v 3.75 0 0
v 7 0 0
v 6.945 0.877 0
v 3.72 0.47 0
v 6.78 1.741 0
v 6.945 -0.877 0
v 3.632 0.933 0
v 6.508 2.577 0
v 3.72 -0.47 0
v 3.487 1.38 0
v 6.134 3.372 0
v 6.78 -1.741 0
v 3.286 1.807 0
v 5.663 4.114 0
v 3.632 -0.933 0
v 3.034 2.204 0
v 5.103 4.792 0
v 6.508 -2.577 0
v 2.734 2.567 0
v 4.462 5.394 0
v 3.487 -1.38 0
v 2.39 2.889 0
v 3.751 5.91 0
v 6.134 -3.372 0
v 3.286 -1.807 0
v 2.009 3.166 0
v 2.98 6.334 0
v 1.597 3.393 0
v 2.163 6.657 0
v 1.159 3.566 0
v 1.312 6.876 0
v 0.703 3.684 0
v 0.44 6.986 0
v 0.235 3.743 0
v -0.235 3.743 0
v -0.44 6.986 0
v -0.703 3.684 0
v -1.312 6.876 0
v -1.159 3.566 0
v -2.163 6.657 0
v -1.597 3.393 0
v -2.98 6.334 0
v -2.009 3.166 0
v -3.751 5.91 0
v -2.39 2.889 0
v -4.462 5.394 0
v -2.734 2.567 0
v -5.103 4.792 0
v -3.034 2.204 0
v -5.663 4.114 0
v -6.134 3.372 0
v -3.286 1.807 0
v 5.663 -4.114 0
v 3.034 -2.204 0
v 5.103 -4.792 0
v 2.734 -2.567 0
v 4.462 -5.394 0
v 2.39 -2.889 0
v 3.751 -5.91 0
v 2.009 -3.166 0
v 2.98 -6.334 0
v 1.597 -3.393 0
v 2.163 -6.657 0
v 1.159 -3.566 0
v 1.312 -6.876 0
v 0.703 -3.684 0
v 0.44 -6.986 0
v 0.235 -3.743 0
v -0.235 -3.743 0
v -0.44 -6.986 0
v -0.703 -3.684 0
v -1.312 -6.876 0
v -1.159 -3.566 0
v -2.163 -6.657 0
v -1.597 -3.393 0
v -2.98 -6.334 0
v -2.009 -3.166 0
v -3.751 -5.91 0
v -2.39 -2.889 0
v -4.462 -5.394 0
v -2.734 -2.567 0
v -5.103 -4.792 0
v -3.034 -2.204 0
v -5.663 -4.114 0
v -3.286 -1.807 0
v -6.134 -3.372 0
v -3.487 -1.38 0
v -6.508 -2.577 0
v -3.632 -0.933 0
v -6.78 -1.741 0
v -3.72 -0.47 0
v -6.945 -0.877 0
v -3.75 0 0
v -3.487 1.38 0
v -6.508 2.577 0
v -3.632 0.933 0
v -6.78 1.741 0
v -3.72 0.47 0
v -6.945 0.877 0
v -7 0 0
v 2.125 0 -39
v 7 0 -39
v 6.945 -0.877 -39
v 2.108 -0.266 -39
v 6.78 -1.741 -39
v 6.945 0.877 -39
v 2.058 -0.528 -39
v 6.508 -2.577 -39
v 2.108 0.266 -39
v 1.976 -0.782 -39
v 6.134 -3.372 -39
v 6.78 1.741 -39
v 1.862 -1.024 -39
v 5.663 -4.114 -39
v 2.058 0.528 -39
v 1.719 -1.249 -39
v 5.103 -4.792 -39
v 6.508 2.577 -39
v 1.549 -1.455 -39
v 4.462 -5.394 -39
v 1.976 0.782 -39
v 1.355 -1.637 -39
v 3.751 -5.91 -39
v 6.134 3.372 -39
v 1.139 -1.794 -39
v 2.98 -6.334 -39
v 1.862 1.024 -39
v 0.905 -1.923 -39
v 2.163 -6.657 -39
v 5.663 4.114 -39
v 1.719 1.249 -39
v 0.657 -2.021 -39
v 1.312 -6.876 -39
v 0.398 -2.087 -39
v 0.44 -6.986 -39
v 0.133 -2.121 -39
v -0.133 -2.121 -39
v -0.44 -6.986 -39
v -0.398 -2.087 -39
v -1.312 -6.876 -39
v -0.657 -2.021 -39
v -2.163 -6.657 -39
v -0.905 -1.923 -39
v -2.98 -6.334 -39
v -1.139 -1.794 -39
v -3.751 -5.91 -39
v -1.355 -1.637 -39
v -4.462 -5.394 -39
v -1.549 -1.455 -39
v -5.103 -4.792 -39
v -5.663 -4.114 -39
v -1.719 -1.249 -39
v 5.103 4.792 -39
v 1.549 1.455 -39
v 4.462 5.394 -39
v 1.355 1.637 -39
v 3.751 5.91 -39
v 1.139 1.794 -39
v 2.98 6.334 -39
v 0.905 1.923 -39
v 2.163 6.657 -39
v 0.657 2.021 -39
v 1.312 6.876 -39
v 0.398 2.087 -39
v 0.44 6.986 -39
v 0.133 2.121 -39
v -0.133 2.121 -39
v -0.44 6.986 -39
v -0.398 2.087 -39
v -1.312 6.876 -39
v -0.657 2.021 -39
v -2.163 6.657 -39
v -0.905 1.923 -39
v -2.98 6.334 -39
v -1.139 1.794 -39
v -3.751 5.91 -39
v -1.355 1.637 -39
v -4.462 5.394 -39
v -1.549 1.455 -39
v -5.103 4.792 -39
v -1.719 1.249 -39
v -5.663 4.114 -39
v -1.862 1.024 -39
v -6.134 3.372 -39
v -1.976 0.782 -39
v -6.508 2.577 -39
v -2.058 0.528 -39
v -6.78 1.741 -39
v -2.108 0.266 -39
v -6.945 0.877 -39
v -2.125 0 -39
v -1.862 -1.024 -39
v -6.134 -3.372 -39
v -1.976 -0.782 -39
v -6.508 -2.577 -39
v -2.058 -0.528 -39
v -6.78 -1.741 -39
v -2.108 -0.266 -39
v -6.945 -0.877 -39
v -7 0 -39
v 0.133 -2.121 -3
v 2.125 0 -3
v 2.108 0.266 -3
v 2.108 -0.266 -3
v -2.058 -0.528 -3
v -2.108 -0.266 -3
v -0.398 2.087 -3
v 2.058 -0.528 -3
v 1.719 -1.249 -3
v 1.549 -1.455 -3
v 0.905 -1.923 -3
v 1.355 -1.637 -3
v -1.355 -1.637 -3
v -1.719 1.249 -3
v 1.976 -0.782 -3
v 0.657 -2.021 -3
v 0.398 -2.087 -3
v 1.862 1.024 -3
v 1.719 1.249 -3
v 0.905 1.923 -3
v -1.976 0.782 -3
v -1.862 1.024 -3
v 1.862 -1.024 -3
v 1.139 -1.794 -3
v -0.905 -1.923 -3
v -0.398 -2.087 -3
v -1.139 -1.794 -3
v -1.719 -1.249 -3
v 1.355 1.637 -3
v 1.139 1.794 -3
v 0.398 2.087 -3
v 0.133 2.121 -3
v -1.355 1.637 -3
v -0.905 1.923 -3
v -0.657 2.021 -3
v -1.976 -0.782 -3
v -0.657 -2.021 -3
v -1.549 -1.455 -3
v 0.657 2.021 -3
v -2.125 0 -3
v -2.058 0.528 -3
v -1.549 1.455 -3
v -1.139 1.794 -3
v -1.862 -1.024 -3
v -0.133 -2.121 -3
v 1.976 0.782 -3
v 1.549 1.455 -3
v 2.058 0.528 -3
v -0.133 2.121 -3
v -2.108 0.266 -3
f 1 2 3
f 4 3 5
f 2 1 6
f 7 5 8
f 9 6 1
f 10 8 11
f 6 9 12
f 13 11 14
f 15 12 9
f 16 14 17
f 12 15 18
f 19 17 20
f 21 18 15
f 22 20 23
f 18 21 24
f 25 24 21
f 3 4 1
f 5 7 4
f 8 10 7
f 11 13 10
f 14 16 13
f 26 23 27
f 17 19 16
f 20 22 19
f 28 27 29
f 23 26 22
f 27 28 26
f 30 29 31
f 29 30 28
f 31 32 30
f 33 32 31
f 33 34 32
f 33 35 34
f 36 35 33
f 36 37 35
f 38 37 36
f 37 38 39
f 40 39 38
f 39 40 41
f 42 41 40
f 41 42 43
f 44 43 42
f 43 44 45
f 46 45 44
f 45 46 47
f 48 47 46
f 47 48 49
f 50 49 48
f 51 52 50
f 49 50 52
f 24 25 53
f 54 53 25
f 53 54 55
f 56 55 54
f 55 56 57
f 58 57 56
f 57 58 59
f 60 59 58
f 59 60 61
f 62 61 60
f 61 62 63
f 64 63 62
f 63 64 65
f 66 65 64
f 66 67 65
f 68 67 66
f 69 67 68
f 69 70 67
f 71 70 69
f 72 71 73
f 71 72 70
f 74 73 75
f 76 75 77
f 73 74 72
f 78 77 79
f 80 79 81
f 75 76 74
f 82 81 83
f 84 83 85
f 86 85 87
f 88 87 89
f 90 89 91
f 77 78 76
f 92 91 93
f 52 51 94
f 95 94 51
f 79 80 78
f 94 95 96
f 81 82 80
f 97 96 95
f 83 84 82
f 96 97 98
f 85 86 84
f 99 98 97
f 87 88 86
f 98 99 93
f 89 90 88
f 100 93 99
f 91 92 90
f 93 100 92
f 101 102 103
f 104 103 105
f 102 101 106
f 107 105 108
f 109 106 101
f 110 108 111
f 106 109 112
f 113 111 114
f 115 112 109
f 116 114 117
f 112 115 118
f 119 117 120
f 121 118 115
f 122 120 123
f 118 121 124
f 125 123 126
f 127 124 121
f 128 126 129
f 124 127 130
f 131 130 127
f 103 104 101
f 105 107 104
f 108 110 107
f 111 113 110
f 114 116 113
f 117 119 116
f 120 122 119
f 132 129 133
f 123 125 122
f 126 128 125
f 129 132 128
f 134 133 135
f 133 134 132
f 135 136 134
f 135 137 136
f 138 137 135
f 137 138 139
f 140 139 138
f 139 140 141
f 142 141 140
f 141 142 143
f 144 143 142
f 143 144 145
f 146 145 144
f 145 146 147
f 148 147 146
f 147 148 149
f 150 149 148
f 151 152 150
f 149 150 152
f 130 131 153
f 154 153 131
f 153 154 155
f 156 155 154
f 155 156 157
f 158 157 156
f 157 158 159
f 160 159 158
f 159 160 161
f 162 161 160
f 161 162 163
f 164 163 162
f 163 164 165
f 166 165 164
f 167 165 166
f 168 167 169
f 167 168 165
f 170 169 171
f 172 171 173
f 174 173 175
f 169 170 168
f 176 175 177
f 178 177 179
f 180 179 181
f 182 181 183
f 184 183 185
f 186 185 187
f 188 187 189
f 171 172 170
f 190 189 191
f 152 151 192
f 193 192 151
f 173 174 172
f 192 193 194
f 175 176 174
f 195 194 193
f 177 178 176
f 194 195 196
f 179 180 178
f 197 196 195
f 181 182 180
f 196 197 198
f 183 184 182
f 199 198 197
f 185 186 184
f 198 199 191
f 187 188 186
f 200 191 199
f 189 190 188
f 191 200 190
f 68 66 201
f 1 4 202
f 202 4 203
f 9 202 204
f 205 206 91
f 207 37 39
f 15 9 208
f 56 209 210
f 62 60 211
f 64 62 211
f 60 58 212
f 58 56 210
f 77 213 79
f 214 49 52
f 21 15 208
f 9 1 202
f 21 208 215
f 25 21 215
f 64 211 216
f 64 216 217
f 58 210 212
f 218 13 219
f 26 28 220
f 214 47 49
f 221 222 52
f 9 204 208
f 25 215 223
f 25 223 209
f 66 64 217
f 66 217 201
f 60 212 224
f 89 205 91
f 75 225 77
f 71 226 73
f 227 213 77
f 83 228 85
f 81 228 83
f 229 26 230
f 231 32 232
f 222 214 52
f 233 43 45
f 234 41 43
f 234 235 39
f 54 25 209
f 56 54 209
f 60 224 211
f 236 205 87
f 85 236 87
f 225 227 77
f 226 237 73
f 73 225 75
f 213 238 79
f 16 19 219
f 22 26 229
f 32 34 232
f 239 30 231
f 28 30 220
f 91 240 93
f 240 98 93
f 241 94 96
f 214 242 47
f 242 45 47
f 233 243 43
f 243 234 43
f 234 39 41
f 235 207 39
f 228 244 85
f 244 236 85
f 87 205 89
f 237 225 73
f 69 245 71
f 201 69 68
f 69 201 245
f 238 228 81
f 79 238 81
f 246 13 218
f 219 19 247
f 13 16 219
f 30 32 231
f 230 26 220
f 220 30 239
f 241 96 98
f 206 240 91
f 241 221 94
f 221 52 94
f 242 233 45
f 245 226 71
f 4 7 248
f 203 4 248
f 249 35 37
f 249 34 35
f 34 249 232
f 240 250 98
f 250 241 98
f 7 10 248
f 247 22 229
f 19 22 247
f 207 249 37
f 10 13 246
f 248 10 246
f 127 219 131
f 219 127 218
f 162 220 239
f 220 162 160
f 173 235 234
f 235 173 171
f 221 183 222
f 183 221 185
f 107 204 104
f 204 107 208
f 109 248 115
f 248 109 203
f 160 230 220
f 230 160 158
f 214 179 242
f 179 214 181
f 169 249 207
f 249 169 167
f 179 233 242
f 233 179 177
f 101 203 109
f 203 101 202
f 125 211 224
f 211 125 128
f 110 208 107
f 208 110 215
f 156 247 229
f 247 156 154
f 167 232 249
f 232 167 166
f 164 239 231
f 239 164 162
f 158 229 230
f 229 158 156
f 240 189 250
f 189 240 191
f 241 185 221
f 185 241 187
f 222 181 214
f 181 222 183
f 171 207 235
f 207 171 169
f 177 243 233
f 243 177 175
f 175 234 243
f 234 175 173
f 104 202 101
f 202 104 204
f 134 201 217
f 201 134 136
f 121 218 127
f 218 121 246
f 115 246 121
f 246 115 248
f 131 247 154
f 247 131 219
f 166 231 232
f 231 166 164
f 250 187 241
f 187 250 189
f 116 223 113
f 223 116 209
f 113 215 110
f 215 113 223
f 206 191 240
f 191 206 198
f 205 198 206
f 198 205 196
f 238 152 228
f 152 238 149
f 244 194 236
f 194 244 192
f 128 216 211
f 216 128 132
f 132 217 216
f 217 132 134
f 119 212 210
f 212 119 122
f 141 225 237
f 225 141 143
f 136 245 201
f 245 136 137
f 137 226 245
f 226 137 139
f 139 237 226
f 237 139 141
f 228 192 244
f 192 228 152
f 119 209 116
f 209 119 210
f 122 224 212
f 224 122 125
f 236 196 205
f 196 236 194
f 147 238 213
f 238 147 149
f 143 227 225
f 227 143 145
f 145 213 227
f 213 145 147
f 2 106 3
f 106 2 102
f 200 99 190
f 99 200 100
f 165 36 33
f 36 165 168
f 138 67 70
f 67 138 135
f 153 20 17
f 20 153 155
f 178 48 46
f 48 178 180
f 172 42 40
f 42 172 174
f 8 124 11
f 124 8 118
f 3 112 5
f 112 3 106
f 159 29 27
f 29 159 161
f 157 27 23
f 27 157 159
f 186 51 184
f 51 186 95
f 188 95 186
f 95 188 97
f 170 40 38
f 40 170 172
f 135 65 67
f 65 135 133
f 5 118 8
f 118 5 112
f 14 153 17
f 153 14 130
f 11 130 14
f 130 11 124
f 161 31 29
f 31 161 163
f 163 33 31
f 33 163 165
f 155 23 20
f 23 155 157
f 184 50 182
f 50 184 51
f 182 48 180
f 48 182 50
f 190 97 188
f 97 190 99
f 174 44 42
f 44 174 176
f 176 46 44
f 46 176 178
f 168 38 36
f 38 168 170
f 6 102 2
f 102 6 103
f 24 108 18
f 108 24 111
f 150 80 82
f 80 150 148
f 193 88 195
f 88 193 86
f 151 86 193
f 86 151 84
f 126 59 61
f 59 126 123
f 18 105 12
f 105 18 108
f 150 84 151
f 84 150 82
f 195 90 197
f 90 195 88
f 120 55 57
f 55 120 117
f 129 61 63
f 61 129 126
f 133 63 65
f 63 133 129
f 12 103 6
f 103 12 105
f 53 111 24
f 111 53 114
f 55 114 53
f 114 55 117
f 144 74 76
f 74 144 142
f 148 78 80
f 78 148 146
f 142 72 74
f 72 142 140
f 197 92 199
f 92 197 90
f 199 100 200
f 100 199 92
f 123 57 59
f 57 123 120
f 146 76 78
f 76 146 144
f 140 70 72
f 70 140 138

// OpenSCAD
$fn = 50;


difference() {
	union() {
		translate(v = [0, 0, -39.0000000000]) {
			cylinder(h = 39, r = 7.0000000000);
		}
		cylinder(h = 0, r = 16.0000000000);
	}
	union() {
		translate(v = [0, 0, 0]) {
			rotate(a = [0, 0, 0]) {
				difference() {
					union() {
						#translate(v = [0, 0, -39.0000000000]) {
							cylinder(h = 39, r = 2.0000000000);
						}
						#translate(v = [0, 0, -3]) {
							cylinder(h = 3, r = 7.0000000000, r1 = 2.1250000000, r2 = 3.7500000000);
						}
						#translate(v = [0, 0, -39.0000000000]) {
							cylinder(h = 39, r = 2.1250000000);
						}
						#translate(v = [0, 0, -39.0000000000]) {
							cylinder(h = 39, r = 2.0000000000);
						}
					}
					union();
				}
			}
		}
	}
}
